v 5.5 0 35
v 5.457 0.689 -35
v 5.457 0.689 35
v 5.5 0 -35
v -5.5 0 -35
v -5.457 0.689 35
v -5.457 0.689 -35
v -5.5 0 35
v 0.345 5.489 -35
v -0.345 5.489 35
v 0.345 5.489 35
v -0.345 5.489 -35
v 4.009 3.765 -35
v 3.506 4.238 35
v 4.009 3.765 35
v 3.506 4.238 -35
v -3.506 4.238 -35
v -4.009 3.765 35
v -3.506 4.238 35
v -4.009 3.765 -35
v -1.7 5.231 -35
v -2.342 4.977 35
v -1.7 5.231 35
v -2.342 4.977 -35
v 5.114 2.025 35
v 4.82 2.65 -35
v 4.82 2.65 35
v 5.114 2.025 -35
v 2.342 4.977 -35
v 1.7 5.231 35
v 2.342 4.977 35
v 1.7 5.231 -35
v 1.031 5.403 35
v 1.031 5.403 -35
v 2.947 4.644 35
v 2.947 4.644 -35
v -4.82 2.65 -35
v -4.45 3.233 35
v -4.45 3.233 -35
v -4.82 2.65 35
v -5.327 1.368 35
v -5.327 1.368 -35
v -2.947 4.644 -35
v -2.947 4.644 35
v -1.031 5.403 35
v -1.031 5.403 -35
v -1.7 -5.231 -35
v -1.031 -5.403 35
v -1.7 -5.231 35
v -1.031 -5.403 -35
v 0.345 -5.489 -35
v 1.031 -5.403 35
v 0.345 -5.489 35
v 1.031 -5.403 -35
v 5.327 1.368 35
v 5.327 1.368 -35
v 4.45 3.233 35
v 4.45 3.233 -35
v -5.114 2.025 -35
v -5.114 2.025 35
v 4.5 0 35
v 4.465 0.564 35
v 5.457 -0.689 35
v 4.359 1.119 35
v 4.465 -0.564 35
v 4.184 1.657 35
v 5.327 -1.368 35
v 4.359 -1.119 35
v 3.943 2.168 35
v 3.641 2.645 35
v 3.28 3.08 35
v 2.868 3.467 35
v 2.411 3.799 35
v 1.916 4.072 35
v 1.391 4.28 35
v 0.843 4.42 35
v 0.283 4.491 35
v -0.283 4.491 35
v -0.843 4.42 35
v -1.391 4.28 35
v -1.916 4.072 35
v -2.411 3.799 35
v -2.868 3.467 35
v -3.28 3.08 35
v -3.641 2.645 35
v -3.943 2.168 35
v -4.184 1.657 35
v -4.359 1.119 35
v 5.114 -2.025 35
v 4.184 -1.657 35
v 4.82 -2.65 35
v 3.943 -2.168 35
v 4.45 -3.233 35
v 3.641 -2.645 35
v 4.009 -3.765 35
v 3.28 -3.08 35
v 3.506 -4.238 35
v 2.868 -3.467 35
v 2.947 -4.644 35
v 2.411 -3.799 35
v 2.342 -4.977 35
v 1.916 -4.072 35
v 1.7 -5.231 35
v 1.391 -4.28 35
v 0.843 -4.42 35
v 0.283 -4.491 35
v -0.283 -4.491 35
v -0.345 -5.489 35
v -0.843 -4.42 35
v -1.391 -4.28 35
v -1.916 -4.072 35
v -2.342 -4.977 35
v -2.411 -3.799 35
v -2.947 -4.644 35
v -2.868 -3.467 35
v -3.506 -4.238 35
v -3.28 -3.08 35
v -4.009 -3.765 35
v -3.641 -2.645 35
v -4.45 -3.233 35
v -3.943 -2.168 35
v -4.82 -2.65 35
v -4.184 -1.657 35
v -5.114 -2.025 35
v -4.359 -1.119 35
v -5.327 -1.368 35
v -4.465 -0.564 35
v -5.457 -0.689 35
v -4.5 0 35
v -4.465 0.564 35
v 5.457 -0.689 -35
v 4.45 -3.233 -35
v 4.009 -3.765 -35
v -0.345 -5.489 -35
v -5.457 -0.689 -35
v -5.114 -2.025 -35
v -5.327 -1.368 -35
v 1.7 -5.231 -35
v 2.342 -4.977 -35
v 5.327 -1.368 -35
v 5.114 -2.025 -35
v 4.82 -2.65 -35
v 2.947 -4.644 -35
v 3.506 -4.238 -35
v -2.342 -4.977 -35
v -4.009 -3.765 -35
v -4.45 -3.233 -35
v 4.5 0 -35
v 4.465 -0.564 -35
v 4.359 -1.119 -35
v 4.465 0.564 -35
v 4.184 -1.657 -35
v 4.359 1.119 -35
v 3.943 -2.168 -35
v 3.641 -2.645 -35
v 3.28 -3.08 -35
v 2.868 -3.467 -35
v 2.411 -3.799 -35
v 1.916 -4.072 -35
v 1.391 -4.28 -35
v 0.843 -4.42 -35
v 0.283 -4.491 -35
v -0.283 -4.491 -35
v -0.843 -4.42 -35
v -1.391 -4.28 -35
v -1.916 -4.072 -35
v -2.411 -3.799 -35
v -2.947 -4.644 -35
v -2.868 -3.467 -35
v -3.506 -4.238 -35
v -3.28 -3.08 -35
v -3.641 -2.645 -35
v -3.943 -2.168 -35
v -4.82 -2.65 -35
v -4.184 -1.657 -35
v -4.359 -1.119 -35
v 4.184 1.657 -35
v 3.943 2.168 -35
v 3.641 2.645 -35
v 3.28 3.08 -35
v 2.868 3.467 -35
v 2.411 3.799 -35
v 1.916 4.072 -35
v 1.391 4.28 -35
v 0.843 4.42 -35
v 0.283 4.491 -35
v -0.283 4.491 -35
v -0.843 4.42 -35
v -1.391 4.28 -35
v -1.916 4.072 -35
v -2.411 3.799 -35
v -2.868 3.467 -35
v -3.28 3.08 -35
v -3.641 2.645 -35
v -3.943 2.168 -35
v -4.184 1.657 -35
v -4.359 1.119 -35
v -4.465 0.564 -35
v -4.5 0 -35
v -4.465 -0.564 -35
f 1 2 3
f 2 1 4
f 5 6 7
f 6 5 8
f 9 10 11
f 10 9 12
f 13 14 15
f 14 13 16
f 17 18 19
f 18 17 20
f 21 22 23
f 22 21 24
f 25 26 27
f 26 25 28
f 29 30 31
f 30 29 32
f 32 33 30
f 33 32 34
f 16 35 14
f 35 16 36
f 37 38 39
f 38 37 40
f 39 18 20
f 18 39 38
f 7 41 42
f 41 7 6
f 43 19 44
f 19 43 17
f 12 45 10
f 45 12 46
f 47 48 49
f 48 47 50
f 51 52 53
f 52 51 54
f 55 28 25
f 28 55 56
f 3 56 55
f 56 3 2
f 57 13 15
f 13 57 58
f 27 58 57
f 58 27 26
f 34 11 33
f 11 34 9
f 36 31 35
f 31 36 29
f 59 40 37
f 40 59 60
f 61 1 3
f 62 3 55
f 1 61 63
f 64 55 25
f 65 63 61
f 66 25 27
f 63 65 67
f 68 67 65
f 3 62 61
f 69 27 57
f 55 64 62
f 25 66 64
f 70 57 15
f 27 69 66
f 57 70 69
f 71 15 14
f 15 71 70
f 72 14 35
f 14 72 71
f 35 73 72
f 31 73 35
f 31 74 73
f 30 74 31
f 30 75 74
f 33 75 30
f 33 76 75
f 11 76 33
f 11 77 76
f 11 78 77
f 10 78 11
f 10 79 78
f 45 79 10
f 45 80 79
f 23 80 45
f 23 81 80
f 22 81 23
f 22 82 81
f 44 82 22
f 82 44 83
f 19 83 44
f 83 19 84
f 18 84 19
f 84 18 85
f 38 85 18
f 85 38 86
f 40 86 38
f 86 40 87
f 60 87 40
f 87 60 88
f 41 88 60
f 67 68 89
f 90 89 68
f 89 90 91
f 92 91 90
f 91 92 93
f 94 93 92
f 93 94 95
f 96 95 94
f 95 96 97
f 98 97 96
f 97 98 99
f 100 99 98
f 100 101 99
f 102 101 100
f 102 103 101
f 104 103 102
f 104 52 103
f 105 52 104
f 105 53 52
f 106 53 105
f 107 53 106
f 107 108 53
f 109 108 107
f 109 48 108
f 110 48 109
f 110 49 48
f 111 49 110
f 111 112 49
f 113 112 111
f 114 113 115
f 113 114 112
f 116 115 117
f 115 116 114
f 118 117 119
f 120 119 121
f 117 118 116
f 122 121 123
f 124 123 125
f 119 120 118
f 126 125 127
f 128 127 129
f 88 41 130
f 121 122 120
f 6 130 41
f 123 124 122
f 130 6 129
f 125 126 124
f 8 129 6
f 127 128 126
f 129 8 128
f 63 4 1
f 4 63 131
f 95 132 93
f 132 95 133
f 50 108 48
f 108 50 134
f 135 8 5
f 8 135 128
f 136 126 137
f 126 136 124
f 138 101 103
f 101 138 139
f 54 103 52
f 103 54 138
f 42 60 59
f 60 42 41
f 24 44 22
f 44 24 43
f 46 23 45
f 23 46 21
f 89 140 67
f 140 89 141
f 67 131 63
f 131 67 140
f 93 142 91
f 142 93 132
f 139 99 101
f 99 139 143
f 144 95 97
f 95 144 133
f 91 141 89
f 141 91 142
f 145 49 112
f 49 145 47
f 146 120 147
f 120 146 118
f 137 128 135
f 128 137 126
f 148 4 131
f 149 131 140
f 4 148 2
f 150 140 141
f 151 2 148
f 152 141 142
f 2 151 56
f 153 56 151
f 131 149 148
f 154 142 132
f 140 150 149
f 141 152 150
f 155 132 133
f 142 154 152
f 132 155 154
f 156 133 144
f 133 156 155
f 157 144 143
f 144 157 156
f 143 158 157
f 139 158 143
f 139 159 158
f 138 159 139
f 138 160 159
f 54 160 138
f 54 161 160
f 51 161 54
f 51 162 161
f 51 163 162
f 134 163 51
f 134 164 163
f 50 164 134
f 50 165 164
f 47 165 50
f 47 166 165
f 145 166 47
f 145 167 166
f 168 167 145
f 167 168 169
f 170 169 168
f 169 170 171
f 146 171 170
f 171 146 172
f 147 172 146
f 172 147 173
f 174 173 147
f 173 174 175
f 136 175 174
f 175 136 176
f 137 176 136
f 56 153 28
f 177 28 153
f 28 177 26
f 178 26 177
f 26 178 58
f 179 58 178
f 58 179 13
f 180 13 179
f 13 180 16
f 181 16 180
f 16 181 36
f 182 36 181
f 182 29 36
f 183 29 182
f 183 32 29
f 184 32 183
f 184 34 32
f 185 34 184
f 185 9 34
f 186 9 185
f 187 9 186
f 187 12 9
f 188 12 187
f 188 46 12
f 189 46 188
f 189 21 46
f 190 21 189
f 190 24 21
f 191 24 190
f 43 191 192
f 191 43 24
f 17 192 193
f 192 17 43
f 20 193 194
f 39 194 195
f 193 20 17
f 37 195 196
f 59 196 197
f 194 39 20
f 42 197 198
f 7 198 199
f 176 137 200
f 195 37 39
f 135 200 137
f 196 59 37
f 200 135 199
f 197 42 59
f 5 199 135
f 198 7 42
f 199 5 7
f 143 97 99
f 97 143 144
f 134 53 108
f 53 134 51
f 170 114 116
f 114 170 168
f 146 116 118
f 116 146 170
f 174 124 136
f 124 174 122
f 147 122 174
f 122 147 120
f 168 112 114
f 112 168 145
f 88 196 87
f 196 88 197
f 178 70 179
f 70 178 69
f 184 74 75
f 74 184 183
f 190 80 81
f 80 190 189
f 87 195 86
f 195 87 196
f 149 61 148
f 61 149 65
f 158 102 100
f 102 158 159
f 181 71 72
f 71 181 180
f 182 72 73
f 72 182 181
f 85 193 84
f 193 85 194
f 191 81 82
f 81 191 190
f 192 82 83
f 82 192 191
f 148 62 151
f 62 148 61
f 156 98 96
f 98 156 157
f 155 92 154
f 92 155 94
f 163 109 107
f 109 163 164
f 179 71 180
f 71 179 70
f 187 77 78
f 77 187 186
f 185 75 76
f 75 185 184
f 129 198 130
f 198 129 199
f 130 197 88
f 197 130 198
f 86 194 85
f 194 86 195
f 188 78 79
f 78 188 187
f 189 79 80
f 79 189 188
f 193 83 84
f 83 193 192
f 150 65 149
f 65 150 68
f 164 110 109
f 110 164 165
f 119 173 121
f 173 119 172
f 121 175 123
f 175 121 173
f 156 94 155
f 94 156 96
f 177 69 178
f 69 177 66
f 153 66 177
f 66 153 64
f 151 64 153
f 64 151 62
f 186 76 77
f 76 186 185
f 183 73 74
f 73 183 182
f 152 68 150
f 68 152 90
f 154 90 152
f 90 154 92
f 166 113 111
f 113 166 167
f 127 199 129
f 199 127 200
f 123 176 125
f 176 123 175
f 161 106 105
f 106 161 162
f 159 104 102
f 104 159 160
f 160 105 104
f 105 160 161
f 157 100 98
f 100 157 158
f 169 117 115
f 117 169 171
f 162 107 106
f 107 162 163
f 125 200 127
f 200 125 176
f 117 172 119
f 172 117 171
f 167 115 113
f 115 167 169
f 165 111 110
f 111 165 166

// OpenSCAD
$fn = 50;


difference() {
	union() {
		translate(v = [0, 0, -35.0000000000]) {
			cylinder(h = 70, r = 5.5000000000);
		}
	}
	union() {
		translate(v = [0, 0, -100.0000000000]) {
			cylinder(h = 200, r = 4.5000000000);
		}
	}
}
